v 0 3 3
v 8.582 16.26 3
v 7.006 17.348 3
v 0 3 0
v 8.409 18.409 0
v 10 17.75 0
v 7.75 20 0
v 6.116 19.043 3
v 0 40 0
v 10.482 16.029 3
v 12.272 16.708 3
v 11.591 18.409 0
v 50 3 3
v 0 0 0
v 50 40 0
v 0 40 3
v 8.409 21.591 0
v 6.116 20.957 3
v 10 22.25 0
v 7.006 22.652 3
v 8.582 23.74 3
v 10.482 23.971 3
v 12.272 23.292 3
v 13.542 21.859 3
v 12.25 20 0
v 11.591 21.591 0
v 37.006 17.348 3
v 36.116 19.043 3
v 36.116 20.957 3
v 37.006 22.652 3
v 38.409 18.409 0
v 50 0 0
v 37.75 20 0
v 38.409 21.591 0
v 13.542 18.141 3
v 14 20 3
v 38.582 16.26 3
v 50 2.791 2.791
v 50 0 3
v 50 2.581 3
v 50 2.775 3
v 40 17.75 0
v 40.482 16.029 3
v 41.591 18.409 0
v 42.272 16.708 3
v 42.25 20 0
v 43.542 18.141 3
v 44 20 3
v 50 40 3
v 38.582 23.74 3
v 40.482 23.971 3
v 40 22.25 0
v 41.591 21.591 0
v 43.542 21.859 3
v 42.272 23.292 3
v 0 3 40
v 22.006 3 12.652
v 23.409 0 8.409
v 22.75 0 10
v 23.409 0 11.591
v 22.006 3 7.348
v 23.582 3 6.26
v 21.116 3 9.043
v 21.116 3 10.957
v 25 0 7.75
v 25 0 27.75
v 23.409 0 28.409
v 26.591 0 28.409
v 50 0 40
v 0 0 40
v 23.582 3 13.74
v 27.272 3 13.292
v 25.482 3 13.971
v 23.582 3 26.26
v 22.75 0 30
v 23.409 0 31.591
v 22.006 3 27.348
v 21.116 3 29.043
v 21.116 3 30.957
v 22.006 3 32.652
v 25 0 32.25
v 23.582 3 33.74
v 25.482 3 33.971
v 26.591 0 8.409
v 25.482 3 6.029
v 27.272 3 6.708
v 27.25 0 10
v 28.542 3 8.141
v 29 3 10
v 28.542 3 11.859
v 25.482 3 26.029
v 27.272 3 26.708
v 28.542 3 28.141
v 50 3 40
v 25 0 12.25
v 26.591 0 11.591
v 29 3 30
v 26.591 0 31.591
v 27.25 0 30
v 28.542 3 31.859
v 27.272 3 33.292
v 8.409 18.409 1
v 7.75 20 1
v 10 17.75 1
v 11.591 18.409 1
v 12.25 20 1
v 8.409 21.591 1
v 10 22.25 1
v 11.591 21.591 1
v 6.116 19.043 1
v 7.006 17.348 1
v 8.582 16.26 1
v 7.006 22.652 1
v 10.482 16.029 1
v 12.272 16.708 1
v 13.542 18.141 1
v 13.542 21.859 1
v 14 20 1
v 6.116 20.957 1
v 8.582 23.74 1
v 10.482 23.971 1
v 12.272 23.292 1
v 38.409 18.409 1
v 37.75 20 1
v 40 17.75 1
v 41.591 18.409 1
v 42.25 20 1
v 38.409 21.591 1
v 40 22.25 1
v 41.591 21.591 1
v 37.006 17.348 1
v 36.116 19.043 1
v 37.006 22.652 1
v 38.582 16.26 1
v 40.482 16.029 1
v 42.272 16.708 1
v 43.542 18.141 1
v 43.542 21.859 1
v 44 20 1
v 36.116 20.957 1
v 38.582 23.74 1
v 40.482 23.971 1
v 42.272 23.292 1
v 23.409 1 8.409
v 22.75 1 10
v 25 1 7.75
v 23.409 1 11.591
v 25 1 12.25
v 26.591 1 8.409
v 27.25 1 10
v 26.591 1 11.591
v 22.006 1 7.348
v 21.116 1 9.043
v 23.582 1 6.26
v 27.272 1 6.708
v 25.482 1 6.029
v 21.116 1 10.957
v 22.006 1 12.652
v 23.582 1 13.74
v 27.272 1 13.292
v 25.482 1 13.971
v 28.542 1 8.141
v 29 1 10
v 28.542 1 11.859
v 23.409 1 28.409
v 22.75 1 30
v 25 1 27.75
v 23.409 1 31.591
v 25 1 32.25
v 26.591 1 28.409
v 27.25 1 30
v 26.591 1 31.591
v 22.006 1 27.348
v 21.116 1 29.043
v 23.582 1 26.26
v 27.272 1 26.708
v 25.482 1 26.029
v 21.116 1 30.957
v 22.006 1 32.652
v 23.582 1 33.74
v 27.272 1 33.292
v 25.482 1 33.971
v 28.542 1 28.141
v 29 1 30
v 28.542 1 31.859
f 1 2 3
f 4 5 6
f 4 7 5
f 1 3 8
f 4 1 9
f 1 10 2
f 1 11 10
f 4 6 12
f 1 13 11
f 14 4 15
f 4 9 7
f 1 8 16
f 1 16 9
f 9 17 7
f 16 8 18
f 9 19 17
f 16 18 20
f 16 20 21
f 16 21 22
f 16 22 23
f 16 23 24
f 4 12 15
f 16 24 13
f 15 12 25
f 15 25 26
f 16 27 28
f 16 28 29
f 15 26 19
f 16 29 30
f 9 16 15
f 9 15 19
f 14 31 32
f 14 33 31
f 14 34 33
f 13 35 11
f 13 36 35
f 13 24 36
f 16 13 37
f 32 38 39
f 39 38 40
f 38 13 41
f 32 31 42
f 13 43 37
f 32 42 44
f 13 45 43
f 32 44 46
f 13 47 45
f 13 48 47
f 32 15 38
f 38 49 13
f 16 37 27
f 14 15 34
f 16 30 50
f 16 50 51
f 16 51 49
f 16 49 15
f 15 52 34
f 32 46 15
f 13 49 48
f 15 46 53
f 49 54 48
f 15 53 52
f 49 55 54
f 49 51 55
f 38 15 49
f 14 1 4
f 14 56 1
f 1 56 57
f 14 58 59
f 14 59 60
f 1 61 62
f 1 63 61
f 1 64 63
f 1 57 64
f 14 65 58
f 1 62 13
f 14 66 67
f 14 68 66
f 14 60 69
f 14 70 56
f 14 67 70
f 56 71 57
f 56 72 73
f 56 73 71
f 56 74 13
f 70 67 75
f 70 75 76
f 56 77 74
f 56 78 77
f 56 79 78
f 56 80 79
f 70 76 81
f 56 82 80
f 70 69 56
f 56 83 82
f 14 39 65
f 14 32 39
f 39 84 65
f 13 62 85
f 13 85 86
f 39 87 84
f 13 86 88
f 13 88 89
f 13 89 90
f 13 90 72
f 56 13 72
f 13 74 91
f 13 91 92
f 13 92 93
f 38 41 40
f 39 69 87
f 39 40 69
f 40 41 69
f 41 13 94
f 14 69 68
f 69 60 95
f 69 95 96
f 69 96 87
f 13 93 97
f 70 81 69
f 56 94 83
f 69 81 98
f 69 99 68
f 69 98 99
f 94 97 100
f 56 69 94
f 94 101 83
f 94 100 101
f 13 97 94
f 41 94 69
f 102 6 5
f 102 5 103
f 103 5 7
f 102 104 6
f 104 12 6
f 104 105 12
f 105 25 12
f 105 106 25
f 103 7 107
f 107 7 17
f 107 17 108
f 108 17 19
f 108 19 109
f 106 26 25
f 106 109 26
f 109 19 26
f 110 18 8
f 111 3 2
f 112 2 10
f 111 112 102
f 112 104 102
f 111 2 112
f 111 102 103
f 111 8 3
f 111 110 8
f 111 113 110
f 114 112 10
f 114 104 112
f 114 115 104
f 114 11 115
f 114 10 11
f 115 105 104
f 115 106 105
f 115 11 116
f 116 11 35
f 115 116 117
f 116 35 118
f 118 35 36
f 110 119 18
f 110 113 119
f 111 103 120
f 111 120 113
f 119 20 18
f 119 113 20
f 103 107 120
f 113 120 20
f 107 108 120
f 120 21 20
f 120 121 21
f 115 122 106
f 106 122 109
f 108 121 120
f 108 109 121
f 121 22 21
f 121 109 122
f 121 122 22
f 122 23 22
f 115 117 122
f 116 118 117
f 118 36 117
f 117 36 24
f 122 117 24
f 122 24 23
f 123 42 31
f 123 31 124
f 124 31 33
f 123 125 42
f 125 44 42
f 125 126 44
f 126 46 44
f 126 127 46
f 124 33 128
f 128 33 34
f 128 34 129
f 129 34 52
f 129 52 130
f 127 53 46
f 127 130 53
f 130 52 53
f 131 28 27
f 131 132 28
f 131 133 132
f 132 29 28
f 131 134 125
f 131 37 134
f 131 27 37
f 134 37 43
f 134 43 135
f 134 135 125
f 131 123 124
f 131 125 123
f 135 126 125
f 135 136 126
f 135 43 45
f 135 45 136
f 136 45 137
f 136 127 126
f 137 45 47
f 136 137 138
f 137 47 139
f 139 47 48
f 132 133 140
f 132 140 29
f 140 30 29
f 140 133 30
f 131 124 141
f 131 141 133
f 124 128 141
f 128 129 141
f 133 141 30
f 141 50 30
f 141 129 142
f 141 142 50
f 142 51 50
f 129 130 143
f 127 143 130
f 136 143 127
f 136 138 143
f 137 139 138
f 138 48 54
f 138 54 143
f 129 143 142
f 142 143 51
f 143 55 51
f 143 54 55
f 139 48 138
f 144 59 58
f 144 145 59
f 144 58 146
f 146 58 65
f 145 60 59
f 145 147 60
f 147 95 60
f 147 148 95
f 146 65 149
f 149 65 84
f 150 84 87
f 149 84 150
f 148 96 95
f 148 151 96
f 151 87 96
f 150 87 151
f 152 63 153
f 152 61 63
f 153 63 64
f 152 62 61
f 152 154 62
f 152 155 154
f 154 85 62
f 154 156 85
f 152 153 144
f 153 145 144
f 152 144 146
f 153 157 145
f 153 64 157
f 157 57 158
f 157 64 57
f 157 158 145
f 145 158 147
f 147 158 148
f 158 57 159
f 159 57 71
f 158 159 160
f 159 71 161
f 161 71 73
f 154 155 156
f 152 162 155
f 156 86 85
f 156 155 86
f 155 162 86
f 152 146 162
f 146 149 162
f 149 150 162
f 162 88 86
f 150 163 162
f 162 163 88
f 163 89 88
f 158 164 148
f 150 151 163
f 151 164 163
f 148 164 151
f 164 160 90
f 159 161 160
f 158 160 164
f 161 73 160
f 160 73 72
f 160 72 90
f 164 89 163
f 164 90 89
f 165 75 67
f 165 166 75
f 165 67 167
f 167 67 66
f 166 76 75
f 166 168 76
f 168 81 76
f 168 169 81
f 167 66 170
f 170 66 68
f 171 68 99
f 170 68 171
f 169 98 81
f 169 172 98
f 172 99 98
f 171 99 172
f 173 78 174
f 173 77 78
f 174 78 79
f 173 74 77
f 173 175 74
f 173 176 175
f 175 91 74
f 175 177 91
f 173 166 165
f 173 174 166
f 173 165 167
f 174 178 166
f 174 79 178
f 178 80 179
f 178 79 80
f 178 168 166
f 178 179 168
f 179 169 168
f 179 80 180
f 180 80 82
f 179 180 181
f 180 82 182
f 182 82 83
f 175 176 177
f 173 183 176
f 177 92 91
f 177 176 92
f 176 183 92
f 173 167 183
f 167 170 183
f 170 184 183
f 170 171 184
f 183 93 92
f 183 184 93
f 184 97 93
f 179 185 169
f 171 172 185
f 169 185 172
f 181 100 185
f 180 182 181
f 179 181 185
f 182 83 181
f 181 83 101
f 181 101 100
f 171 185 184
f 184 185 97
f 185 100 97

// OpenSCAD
difference() {
    // L 字金具本体
    union() {
        // 水平フランジ (X×Y×Z = 50×40×3)
        cube([50, 40, 3]);
        // 垂直フランジ (X×Y×Z = 50×3×40)
        cube([50, 3, 40]);
    }

    // 水平面の皿穴 (Z 軸方向)
    for (x = [10, 40]) {
        // 貫通穴 Φ4.5mm
        translate([x, 20, -1])
            cylinder(d=4.5, h=5);
        // 皿座面 Φ8mm 深さ 2mm (外側は Z=3 側)
        translate([x, 20, 1])
            cylinder(d=8, h=2);
    }

    // 垂直面の皿穴 (Y 軸方向)
    for (z = [10, 30]) {
        // 貫通穴 Φ4.5mm
        translate([25, -1, z])
            rotate([-90, 0, 0])
            cylinder(d=4.5, h=5);
        // 皿座面 Φ8mm 深さ 2mm (外側は Y=3 側)
        translate([25, 1, z])
            rotate([-90, 0, 0])
            cylinder(d=8, h=2);
    }
}
